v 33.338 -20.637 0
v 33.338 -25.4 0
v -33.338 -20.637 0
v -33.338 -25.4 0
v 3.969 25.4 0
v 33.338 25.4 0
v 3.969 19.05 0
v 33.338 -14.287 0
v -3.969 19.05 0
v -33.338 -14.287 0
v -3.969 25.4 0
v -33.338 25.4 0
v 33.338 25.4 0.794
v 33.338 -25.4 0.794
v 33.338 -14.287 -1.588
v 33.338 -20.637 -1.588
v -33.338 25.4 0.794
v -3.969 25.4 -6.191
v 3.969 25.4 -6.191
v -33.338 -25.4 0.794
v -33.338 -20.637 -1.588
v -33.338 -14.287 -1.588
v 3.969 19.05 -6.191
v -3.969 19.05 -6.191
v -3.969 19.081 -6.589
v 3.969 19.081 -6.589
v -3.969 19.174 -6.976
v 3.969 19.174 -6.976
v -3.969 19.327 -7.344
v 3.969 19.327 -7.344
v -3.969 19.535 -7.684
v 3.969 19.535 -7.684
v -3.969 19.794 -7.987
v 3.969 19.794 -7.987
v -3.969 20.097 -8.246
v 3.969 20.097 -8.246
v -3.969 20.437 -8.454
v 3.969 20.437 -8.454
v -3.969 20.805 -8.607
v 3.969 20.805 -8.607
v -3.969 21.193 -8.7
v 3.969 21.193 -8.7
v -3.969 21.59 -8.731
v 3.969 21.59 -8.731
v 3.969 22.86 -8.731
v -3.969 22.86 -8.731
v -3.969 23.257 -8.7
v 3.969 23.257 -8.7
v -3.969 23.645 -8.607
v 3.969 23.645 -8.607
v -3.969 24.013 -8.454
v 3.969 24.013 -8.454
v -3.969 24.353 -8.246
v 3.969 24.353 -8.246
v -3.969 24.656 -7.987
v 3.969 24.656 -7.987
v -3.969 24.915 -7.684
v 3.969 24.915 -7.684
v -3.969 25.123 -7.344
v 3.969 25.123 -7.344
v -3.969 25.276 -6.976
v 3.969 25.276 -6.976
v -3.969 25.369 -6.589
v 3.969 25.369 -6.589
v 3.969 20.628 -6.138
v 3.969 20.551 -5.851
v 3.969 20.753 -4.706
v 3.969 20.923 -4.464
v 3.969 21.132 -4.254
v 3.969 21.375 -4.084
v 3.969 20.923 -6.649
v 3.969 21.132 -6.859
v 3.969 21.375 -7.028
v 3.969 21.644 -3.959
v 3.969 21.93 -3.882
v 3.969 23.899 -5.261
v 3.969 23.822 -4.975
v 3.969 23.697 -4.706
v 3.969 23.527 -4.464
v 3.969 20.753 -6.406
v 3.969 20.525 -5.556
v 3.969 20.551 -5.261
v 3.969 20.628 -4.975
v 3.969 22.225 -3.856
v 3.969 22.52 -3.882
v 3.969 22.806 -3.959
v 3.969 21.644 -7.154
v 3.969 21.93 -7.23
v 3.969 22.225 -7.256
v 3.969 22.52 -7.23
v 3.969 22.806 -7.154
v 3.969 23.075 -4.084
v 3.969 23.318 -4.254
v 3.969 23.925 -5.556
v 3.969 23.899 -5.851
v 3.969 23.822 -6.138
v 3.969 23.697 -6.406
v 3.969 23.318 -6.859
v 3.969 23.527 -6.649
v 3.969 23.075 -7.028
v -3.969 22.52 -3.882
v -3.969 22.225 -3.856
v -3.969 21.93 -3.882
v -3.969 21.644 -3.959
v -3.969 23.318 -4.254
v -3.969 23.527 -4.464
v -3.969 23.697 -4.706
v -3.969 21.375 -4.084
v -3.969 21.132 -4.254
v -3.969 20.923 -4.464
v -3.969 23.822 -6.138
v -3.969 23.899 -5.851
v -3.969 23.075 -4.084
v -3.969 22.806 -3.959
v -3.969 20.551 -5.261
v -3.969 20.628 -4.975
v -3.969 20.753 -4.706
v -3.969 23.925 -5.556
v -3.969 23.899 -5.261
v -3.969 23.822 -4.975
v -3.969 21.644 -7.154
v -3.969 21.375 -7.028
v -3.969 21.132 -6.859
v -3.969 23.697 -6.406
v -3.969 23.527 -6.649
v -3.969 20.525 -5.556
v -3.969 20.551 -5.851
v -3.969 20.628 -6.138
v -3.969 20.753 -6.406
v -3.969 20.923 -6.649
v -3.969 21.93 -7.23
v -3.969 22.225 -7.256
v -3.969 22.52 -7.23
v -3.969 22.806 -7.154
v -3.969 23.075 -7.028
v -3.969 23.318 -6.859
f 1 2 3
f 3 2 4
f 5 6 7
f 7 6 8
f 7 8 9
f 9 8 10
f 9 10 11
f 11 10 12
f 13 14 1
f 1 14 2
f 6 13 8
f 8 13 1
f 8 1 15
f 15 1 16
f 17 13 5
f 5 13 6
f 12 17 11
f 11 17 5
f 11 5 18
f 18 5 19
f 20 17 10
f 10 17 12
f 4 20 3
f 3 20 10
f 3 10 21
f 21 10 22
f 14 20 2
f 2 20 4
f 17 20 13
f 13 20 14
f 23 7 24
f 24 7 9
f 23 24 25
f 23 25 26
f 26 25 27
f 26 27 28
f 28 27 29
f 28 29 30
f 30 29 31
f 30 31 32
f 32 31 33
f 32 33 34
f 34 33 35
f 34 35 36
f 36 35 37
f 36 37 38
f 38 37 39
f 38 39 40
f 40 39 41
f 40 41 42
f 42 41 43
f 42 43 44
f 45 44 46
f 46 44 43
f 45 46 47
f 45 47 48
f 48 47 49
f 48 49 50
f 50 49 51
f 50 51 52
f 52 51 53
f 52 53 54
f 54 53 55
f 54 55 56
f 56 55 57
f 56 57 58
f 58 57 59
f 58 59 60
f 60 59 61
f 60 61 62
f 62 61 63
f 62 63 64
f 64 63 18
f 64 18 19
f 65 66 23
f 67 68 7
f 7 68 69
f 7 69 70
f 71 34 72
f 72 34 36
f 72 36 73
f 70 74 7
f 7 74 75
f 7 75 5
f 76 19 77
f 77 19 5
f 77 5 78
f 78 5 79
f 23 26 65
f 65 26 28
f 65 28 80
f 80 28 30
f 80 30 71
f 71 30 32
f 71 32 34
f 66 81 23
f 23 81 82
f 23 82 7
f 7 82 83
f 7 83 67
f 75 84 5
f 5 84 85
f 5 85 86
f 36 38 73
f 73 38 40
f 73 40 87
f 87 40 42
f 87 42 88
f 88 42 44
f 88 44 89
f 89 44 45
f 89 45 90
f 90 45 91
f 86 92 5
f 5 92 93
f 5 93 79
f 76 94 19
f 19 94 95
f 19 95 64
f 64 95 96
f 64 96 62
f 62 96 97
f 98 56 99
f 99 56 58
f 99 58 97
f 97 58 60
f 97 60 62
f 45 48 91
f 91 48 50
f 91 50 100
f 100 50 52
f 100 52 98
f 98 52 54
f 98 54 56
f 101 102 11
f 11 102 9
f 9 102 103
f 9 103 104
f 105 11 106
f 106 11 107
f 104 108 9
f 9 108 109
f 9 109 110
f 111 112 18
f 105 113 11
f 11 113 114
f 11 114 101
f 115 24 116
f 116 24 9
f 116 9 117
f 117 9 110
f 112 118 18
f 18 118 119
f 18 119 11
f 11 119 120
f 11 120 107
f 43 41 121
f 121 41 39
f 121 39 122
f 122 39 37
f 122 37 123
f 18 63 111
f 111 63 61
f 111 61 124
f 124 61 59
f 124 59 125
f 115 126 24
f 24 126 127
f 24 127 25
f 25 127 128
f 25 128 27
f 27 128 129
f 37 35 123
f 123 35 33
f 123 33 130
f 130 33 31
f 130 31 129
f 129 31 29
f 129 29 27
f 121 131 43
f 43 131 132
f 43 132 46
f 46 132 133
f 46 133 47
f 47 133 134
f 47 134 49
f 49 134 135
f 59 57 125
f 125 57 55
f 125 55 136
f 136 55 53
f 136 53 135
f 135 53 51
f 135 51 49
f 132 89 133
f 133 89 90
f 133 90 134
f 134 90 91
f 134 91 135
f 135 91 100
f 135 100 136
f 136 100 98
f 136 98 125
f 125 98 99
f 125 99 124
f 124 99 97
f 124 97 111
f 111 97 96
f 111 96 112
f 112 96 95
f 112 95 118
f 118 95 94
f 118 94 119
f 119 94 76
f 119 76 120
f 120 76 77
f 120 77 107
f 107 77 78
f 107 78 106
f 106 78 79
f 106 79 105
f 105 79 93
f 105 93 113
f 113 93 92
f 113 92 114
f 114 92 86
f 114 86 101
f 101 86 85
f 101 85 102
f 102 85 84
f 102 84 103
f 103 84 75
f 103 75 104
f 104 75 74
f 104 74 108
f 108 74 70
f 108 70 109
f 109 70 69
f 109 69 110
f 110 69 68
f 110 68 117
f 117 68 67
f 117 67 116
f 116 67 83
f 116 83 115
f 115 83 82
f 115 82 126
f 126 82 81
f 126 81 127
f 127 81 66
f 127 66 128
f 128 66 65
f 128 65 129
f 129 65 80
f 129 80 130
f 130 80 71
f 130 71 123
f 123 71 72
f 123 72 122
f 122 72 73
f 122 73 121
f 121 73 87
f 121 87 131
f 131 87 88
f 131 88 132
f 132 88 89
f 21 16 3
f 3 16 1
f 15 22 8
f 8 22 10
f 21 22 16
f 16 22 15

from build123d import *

# Parameters (mm, degrees)
SKETCH1_W                = 66.675
SKETCH1_H                = 50.8
BOSS_EXTRUDE1_DEPTH      = 0.79375
BOSS_EXTRUDE2_DEPTH      = 3.96875
M3_CLEARANCE_HOLE2_D     = 3.4
M3_CLEARANCE_HOLE2_DEPTH = 6.35
M3_CLEARANCE_HOLE2_TIP   = 1.021463052
SKETCH11_W               = 66.675
SKETCH11_H               = 6.35
BOSS_EXTRUDE3_DEPTH      = 1.5875


with BuildPart() as part:
    # Sketch1 → Boss-Extrude1 (new body)
    with BuildSketch(Plane.XY):
        Rectangle(SKETCH1_W, SKETCH1_H)
    extrude(amount=BOSS_EXTRUDE1_DEPTH)

    # Sketch3 → Boss-Extrude2 (add, symmetric)
    with BuildSketch(Plane(origin=(0, 0, 0), x_dir=(0, 0, -1), z_dir=(1, 0, 0))):
        with BuildLine():
            Line((0, 25.4), (6.19125, 25.4))
            ThreePointArc((6.19125, 25.4), (7.987301224, 24.656051224), (8.73125, 22.86))
            Line((8.73125, 22.86), (8.73125, 21.59))
            ThreePointArc((8.73125, 21.59), (7.987301224, 19.793948776), (6.19125, 19.05))
            Line((6.19125, 19.05), (0, 19.05))
            Line((0, 19.05), (0, 25.4))
        make_face()
    extrude(amount=BOSS_EXTRUDE2_DEPTH, both=True)

    # Sketch8 → M3 Clearance Hole1 (revolve, cut)
    with BuildSketch(Plane(origin=(0, 22.225, -5.55625), x_dir=(0, 0, -1), z_dir=(0, 1, 0))):
        Polygon((0, 0), (0, 7.371463052), (1.7, 6.35), (1.7, 0), align=None)
    revolve(axis=Axis((6.35, 22.225, -5.55625), (-1, 0, 0)), mode=Mode.SUBTRACT)

    # M3 Clearance Hole2
    with Locations(Plane.ZY):
        with Locations((-5.55625, 22.225)):
            Hole(M3_CLEARANCE_HOLE2_D / 2, depth=M3_CLEARANCE_HOLE2_DEPTH)
            with Locations((0, 0, -(M3_CLEARANCE_HOLE2_DEPTH + M3_CLEARANCE_HOLE2_TIP / 2))):  # 118° drill point
                Cone(0, M3_CLEARANCE_HOLE2_D / 2, M3_CLEARANCE_HOLE2_TIP, mode=Mode.SUBTRACT)

    # Sketch11 → Boss-Extrude3 (add)
    with BuildSketch(Plane(origin=(0, 0, 0), x_dir=(-1, 0, 0), z_dir=(0, 0, -1))):
        with Locations((0, -17.4625)):
            Rectangle(SKETCH11_W, SKETCH11_H)
    extrude(amount=BOSS_EXTRUDE3_DEPTH)


solid = part.part
